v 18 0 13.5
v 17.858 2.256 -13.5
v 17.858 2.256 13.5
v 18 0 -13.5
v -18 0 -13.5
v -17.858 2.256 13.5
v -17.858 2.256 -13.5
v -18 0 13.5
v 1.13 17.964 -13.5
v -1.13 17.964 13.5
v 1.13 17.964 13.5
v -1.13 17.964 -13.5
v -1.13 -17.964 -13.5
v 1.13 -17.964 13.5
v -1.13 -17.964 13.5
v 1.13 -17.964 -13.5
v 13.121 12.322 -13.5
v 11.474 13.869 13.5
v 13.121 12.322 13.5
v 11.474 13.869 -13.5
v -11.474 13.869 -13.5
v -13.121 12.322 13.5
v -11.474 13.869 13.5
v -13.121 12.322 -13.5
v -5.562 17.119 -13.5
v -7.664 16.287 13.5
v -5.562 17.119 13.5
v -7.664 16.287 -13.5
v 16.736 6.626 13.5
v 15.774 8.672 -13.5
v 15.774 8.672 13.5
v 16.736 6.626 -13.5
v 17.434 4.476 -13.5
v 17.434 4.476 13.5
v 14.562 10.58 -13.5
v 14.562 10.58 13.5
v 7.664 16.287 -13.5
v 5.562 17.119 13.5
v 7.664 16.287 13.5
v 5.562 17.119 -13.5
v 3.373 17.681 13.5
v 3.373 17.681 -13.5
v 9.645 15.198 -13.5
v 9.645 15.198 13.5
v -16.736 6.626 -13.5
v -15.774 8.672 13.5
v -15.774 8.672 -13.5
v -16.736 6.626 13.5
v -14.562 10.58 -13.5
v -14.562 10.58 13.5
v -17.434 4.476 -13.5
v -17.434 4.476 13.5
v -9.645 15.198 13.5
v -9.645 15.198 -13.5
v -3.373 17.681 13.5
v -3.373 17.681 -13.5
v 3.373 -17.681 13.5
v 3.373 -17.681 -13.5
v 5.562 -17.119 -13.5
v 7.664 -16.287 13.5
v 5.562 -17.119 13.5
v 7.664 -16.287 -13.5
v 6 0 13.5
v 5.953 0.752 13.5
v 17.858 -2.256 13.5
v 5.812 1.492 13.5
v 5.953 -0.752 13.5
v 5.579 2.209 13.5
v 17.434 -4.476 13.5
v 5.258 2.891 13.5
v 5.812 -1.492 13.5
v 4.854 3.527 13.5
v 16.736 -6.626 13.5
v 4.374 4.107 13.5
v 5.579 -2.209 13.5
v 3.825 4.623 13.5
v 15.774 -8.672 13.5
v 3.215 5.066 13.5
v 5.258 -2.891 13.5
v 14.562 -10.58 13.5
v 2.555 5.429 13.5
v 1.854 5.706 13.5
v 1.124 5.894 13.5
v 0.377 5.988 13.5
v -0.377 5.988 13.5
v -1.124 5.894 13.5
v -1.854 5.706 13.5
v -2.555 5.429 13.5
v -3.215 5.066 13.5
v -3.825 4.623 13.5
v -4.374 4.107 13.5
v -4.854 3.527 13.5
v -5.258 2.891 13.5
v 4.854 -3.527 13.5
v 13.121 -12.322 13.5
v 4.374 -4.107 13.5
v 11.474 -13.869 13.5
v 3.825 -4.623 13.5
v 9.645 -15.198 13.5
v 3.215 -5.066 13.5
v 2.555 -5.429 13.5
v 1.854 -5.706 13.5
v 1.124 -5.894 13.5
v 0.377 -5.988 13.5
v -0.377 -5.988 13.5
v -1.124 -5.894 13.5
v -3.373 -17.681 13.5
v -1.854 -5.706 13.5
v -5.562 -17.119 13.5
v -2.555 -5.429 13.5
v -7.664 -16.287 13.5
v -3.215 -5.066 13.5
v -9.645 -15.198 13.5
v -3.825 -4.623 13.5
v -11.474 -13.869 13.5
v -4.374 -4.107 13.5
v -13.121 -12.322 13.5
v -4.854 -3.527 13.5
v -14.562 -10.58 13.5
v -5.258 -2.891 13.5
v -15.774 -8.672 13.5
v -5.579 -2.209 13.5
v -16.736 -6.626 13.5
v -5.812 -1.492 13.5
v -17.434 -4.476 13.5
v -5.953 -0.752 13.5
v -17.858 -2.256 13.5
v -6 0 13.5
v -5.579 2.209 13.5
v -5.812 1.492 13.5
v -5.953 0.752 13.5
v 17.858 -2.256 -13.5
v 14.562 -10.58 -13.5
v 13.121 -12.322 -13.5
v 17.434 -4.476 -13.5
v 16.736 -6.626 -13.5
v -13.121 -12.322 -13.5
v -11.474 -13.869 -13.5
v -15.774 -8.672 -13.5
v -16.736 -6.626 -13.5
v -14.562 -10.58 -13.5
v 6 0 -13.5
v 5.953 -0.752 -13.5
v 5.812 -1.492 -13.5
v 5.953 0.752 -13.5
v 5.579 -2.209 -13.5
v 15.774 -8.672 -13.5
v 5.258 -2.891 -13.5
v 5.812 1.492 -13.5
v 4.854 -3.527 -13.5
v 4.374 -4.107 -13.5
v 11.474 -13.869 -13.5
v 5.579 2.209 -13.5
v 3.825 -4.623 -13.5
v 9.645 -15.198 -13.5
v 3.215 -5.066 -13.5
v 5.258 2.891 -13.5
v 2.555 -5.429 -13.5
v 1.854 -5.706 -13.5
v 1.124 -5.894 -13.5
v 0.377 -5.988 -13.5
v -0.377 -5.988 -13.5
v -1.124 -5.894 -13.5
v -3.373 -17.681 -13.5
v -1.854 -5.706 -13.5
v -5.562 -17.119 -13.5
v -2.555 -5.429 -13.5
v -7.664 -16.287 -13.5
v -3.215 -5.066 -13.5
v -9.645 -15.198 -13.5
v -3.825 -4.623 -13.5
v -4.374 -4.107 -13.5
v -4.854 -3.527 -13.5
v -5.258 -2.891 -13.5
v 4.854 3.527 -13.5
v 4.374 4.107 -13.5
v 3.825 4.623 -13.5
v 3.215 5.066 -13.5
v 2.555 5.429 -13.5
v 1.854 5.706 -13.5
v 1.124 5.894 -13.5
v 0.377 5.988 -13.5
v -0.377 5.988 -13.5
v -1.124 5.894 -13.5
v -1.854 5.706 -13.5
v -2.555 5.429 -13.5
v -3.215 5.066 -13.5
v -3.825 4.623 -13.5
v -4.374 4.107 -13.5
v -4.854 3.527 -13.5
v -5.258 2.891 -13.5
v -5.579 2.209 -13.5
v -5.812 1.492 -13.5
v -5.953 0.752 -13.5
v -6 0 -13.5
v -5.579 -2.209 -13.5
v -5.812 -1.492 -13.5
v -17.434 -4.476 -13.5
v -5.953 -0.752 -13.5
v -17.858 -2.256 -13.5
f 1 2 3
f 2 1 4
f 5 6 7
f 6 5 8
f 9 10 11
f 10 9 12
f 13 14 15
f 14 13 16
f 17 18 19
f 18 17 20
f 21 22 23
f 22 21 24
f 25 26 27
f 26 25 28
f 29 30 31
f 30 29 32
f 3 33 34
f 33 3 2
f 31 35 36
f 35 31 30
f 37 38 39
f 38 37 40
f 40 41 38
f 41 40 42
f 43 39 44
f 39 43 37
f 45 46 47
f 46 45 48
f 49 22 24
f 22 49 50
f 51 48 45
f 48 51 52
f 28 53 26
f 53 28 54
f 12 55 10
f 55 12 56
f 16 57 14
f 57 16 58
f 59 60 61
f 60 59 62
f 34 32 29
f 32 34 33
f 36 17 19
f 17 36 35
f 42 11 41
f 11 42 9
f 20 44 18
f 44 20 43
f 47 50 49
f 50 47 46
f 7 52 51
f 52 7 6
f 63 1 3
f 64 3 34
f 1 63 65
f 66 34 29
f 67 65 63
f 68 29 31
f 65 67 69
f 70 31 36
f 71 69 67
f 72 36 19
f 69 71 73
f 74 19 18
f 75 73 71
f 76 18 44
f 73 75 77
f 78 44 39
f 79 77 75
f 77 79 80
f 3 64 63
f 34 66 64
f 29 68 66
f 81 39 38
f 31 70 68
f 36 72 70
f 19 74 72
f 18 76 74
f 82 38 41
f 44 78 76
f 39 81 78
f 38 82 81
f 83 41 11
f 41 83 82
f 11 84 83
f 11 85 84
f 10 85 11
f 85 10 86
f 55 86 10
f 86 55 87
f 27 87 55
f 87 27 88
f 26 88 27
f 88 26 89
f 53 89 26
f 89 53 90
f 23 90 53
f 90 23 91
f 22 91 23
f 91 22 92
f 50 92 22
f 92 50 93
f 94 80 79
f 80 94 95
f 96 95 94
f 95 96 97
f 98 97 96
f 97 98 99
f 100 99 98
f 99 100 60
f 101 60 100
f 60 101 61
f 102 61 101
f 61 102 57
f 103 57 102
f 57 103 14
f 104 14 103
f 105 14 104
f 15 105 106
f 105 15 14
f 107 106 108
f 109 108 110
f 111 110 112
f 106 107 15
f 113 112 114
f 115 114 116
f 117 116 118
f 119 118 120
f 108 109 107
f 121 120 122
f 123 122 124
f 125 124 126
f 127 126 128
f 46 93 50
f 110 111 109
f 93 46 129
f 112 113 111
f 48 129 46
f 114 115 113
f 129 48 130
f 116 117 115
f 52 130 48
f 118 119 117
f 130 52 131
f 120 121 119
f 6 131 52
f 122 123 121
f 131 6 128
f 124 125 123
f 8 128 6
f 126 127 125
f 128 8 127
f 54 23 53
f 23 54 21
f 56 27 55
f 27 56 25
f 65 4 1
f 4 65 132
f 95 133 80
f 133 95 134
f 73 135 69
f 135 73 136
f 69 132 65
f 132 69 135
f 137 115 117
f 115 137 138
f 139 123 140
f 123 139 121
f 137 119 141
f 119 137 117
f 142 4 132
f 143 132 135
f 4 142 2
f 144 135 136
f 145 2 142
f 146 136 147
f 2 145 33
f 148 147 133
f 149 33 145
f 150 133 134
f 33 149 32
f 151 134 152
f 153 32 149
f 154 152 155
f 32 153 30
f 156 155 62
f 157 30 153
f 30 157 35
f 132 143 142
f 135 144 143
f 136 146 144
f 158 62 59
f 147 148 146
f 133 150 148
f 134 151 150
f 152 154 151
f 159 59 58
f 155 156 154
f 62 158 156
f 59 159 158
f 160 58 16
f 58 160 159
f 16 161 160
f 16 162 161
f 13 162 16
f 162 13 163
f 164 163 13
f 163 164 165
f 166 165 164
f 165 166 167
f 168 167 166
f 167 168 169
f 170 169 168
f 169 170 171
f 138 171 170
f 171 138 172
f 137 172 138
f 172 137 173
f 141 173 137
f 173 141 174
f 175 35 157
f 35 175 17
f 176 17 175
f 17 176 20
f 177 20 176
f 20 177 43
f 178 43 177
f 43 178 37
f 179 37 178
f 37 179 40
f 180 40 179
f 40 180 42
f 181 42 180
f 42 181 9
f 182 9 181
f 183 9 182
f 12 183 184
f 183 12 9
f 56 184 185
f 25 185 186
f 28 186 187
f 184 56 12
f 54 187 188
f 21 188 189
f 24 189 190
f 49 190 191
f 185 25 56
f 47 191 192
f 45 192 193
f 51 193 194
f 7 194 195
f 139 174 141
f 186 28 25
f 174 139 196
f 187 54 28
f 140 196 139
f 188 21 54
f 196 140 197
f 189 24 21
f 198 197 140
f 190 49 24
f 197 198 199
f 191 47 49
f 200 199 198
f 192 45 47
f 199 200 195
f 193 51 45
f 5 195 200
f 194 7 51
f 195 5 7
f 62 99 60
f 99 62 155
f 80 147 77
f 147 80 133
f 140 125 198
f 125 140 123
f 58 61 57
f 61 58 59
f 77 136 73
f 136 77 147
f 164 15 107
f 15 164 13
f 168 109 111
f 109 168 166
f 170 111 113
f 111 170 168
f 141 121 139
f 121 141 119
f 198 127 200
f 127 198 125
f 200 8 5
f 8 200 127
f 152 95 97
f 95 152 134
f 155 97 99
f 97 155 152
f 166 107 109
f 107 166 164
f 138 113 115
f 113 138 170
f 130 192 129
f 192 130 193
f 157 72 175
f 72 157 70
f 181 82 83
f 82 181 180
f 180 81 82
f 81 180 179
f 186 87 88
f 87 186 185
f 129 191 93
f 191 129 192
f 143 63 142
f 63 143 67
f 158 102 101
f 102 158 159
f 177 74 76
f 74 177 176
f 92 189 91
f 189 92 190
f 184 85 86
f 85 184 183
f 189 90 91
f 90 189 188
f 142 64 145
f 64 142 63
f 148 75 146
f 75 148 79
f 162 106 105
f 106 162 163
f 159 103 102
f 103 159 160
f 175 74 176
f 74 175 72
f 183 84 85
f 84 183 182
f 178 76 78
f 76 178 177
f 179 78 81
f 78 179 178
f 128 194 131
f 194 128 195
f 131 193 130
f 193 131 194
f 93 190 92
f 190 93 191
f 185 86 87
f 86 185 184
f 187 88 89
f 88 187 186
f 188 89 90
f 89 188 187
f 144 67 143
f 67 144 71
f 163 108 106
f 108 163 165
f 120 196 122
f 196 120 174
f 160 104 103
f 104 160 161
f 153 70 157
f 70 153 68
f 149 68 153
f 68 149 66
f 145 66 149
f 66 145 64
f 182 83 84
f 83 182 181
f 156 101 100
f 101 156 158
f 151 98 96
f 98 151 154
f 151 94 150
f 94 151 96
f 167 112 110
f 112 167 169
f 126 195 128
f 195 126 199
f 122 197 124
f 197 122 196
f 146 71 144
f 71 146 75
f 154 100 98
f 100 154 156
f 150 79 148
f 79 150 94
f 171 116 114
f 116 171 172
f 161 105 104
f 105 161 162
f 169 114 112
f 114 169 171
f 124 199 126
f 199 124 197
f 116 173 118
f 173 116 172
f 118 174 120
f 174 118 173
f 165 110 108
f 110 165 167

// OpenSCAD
$fn = 50;


difference() {
	union() {
		translate(v = [0, 0, -13.5000000000]) {
			cylinder(h = 27, r = 18.0000000000);
		}
	}
	union() {
		translate(v = [0, 0, -100.0000000000]) {
			cylinder(h = 200, r = 6);
		}
	}
}
